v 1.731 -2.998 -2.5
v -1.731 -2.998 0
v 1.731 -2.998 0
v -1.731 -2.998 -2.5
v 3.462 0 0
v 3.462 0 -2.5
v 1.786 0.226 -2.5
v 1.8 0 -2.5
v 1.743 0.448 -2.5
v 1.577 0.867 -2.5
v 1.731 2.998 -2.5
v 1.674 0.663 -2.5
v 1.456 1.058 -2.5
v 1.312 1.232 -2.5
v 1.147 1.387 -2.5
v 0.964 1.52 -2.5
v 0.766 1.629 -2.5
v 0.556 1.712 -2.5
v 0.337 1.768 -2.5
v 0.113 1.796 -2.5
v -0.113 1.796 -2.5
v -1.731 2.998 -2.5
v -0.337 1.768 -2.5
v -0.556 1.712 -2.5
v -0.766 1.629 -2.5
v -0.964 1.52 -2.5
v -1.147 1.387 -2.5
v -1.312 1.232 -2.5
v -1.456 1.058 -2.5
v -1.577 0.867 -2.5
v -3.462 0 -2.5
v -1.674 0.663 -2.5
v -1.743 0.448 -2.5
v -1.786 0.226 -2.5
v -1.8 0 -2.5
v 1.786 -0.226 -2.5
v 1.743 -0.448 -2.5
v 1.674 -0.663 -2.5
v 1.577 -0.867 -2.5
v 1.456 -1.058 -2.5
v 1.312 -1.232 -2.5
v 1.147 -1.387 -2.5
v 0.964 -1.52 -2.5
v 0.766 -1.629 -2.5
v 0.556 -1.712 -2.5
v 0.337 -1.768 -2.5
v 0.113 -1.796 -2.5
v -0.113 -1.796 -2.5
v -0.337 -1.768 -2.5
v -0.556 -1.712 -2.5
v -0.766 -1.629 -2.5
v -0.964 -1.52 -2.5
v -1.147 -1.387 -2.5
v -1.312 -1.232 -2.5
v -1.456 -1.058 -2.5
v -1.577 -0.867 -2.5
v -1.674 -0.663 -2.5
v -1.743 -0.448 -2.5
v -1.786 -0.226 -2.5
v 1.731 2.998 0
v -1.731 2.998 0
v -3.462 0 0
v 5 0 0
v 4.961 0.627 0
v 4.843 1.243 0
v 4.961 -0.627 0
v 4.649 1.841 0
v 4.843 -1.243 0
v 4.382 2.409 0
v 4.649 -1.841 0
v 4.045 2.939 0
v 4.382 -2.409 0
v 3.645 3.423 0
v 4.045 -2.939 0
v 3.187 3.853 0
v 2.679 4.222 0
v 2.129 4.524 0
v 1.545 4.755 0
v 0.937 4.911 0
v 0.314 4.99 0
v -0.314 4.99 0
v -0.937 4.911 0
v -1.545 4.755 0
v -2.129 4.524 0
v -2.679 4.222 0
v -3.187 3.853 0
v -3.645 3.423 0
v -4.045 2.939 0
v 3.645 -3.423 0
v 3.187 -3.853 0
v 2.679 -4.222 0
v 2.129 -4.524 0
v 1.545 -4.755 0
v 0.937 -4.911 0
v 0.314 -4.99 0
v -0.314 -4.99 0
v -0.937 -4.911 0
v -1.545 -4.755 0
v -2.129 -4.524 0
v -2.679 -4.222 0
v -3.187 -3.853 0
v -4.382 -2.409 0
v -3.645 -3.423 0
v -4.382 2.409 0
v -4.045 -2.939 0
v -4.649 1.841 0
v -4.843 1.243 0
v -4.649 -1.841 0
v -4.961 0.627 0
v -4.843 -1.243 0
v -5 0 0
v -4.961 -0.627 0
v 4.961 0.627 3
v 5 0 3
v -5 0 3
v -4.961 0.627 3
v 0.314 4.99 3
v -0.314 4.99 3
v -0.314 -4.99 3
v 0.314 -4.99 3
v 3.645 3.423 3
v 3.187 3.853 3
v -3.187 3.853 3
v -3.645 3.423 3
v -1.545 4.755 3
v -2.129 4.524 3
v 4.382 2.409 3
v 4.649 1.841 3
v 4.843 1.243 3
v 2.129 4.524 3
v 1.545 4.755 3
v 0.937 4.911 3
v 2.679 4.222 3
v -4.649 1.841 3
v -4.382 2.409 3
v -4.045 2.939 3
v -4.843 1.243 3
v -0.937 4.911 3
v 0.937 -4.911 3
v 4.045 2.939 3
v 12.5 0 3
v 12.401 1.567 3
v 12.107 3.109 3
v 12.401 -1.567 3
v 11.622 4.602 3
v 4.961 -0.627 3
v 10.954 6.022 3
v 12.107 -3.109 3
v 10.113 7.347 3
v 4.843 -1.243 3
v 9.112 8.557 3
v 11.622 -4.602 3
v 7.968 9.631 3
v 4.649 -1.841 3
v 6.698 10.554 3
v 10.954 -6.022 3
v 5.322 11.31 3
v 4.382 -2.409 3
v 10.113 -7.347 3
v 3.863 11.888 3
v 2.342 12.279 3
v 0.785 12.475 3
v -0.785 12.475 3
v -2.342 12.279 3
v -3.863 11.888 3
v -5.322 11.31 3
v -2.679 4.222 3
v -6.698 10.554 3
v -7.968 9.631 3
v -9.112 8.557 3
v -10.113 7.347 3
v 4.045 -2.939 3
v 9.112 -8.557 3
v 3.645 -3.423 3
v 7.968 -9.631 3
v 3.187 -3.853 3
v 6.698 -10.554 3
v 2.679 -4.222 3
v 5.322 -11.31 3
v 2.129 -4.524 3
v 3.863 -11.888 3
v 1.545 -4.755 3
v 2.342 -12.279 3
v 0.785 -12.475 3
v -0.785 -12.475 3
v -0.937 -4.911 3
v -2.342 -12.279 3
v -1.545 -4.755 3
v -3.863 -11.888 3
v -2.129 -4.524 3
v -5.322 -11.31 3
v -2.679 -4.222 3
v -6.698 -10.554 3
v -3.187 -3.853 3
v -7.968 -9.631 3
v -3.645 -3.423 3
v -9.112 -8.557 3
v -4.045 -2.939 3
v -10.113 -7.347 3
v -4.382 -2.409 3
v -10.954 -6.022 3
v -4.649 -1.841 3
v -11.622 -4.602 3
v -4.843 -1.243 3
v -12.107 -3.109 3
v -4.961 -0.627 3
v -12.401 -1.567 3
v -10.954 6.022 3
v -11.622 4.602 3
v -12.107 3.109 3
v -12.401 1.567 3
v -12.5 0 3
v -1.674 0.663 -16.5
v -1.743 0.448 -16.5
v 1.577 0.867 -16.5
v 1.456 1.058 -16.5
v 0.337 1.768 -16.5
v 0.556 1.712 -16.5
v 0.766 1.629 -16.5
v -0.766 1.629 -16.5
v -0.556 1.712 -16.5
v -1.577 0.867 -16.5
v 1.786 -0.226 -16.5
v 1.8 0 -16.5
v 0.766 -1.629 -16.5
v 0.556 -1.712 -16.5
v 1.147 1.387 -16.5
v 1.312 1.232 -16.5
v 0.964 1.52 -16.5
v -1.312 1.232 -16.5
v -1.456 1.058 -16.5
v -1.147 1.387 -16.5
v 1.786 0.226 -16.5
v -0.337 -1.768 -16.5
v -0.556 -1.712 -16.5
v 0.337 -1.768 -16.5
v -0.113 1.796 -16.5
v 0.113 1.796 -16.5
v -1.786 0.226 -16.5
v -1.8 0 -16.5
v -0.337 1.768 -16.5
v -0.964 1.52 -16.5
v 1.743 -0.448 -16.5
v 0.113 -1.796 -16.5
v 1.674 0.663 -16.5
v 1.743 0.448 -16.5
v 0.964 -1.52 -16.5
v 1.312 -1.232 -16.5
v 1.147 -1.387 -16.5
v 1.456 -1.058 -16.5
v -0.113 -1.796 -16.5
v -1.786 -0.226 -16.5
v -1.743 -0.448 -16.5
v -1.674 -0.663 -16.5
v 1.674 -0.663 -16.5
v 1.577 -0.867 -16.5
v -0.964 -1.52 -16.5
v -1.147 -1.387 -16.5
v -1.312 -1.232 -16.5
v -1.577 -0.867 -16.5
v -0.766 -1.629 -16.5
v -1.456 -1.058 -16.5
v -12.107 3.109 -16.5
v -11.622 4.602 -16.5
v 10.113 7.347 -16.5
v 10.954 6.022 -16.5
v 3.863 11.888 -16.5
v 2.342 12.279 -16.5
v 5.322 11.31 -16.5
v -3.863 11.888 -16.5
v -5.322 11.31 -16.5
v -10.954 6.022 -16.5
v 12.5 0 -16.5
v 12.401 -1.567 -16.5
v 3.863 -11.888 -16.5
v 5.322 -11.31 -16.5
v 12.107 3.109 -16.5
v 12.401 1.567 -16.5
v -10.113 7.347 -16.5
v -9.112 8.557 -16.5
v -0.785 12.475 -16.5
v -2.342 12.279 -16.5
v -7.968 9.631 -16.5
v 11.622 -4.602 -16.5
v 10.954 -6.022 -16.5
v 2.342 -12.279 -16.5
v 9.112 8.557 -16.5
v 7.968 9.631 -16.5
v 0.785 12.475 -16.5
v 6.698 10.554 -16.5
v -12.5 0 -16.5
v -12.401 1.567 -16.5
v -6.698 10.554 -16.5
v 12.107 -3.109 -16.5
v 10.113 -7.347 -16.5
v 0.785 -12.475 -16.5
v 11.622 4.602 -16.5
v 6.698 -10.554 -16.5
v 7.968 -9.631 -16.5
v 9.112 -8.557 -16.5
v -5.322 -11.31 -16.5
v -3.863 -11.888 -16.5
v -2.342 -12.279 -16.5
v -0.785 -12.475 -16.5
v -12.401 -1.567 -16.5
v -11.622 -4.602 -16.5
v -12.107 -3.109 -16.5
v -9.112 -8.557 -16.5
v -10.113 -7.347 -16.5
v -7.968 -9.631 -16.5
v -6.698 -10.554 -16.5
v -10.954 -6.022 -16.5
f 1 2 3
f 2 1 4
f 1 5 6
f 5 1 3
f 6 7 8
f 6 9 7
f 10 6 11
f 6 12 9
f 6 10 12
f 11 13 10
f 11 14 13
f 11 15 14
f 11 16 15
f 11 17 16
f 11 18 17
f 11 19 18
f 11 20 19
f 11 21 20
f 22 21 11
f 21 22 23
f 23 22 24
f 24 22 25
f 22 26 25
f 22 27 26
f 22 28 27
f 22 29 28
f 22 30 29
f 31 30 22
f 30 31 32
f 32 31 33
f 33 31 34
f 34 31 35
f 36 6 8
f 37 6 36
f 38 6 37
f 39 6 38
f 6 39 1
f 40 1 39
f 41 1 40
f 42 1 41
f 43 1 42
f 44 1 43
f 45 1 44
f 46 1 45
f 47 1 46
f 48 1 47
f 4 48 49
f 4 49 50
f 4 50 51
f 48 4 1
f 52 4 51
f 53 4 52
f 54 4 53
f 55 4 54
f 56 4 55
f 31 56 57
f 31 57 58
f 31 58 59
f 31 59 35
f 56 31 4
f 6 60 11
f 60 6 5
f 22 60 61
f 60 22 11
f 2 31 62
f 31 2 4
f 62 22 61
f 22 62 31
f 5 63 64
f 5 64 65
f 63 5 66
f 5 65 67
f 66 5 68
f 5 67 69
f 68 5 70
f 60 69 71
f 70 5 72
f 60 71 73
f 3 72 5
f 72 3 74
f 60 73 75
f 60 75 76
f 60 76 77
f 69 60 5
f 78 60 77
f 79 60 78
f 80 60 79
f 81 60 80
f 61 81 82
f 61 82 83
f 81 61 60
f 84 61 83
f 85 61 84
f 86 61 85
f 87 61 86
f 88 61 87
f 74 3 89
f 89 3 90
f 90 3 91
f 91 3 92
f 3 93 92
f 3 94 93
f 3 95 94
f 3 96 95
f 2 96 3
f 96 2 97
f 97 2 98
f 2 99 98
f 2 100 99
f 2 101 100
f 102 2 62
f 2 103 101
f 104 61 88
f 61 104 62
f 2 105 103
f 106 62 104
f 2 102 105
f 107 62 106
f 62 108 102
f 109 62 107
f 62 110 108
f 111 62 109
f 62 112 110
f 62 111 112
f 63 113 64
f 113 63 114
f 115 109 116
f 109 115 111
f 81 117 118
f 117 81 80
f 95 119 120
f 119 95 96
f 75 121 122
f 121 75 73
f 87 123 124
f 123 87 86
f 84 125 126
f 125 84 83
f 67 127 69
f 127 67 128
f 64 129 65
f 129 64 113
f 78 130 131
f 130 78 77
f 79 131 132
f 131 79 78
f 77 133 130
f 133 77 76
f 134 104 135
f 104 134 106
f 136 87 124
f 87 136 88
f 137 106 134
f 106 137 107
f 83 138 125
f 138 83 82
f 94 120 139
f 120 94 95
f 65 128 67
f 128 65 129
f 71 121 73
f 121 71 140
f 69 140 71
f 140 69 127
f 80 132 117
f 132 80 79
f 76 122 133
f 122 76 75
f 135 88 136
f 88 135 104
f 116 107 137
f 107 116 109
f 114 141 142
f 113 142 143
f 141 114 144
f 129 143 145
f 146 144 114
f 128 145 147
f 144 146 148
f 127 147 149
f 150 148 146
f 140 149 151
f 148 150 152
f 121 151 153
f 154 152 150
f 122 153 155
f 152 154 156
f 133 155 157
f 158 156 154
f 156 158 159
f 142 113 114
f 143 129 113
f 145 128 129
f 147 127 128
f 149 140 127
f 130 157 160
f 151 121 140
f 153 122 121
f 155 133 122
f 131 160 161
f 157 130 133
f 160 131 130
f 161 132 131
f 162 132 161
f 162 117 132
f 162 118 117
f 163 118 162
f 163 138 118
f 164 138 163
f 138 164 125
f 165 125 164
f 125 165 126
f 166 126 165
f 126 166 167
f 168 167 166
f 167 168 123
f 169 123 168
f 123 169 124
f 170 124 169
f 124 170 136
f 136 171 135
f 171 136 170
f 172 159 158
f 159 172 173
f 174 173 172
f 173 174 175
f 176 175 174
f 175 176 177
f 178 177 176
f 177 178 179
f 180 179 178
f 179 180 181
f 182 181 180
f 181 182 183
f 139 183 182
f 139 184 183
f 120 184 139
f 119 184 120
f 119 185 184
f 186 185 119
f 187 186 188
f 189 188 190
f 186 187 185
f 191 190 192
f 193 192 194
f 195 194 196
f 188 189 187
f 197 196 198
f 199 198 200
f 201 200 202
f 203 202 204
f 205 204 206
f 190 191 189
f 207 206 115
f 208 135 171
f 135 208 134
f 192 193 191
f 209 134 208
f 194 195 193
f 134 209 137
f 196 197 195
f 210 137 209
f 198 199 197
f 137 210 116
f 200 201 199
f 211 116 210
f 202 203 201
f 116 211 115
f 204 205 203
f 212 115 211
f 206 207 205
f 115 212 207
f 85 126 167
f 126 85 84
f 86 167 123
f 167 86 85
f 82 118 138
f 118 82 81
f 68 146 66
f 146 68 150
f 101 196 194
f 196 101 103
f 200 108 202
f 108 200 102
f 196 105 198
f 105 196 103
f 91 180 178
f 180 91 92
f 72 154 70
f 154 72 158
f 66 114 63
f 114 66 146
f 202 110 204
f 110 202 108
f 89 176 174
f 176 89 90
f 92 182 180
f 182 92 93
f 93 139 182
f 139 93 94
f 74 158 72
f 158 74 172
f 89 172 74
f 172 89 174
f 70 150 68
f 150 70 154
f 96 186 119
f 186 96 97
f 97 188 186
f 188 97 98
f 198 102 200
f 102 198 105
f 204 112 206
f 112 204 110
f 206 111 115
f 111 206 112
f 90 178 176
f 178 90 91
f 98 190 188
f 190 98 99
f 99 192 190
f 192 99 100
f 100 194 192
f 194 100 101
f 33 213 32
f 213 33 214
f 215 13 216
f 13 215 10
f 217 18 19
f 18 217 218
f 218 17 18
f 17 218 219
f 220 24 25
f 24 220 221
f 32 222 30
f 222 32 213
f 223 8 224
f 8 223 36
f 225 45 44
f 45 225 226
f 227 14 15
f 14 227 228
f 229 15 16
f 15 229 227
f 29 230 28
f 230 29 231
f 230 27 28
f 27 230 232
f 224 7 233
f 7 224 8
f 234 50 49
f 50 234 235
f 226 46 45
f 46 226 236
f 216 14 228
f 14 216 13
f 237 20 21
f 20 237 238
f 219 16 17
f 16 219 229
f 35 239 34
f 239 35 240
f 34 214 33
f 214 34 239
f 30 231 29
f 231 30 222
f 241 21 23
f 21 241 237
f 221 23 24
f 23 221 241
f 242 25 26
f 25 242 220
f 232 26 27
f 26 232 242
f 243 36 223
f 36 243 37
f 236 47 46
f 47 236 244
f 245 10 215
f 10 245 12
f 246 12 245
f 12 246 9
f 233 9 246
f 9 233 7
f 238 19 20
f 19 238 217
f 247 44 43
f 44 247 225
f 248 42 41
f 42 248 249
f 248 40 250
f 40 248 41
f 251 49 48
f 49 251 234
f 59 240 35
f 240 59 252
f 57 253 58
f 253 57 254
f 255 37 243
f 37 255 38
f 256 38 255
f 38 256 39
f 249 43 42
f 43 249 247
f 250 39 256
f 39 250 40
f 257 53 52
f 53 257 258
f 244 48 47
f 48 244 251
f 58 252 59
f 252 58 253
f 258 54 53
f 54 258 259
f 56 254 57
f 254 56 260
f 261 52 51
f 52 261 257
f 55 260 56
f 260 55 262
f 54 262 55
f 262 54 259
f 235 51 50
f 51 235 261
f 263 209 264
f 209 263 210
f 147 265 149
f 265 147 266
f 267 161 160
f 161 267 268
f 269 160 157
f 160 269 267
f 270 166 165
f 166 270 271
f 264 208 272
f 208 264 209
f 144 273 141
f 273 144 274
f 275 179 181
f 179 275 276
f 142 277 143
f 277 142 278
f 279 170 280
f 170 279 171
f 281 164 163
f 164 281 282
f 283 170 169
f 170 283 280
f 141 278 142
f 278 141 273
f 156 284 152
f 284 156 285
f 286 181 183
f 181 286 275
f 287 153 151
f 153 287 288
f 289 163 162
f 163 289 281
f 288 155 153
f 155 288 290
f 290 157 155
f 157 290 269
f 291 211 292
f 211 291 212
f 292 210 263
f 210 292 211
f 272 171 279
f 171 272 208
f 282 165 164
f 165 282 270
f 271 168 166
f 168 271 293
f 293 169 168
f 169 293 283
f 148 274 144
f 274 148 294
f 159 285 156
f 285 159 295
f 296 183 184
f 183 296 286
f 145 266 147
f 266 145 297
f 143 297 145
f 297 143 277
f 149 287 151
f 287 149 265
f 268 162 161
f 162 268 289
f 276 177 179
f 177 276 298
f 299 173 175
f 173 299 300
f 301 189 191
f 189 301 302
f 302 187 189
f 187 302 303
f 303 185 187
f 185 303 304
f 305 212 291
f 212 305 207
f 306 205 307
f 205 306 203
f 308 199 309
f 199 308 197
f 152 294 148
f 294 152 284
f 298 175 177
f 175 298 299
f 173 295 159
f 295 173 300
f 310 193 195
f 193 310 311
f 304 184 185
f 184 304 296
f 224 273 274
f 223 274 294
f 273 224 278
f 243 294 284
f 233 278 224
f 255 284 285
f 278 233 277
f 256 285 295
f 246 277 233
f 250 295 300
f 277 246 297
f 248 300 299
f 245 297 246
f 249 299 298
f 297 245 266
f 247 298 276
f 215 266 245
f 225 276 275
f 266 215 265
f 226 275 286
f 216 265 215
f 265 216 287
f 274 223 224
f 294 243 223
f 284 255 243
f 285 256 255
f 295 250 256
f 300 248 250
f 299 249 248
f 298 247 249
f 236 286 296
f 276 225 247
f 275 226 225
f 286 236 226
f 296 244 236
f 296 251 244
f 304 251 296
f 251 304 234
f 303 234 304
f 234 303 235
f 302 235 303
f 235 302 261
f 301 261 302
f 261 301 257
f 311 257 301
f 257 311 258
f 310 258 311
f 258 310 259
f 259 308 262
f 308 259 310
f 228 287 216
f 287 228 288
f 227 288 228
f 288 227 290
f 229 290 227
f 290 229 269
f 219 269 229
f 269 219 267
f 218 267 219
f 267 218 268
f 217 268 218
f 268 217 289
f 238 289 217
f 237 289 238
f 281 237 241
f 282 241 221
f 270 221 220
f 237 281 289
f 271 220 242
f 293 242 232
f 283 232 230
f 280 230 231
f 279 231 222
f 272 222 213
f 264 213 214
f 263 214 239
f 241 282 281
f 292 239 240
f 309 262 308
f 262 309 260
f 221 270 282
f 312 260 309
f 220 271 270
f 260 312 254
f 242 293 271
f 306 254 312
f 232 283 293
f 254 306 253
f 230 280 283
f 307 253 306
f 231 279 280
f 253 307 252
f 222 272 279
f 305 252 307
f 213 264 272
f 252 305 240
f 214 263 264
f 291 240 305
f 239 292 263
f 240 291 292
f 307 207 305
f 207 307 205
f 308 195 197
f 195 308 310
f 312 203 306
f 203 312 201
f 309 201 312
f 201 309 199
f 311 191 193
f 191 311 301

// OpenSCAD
$fn = 50;

difference() {
	union() {
		translate(v = [0, 0, -16.5]) {
			cylinder(h = 19.5, r = 12.5);
		}
	}
	union() {
		translate(v = [0, 0, 0]) {
			rotate(a = [0, 0, 0]) {
				difference() {
					union() {
						translate(v = [0, 0, -2.5]) {
							linear_extrude(height = 2.5) {
								polygon(points = [[3.4619999999999997, 0.0], [1.7310000000000003, 2.9981799479017264], [-1.7309999999999992, 2.9981799479017264], [-3.4619999999999997, 4.2397272186481365e-16], [-1.7310000000000014, -2.998179947901726], [1.7309999999999977, -2.9981799479017277]]);
							}
						}
					}
					union();
				}
			}
		}
		#cylinder(h = 3, r = 5.0);
		#translate(v = [0, 0, -100.0]) {
			cylinder(h = 200, r = 1.8);
		}
	}
}
